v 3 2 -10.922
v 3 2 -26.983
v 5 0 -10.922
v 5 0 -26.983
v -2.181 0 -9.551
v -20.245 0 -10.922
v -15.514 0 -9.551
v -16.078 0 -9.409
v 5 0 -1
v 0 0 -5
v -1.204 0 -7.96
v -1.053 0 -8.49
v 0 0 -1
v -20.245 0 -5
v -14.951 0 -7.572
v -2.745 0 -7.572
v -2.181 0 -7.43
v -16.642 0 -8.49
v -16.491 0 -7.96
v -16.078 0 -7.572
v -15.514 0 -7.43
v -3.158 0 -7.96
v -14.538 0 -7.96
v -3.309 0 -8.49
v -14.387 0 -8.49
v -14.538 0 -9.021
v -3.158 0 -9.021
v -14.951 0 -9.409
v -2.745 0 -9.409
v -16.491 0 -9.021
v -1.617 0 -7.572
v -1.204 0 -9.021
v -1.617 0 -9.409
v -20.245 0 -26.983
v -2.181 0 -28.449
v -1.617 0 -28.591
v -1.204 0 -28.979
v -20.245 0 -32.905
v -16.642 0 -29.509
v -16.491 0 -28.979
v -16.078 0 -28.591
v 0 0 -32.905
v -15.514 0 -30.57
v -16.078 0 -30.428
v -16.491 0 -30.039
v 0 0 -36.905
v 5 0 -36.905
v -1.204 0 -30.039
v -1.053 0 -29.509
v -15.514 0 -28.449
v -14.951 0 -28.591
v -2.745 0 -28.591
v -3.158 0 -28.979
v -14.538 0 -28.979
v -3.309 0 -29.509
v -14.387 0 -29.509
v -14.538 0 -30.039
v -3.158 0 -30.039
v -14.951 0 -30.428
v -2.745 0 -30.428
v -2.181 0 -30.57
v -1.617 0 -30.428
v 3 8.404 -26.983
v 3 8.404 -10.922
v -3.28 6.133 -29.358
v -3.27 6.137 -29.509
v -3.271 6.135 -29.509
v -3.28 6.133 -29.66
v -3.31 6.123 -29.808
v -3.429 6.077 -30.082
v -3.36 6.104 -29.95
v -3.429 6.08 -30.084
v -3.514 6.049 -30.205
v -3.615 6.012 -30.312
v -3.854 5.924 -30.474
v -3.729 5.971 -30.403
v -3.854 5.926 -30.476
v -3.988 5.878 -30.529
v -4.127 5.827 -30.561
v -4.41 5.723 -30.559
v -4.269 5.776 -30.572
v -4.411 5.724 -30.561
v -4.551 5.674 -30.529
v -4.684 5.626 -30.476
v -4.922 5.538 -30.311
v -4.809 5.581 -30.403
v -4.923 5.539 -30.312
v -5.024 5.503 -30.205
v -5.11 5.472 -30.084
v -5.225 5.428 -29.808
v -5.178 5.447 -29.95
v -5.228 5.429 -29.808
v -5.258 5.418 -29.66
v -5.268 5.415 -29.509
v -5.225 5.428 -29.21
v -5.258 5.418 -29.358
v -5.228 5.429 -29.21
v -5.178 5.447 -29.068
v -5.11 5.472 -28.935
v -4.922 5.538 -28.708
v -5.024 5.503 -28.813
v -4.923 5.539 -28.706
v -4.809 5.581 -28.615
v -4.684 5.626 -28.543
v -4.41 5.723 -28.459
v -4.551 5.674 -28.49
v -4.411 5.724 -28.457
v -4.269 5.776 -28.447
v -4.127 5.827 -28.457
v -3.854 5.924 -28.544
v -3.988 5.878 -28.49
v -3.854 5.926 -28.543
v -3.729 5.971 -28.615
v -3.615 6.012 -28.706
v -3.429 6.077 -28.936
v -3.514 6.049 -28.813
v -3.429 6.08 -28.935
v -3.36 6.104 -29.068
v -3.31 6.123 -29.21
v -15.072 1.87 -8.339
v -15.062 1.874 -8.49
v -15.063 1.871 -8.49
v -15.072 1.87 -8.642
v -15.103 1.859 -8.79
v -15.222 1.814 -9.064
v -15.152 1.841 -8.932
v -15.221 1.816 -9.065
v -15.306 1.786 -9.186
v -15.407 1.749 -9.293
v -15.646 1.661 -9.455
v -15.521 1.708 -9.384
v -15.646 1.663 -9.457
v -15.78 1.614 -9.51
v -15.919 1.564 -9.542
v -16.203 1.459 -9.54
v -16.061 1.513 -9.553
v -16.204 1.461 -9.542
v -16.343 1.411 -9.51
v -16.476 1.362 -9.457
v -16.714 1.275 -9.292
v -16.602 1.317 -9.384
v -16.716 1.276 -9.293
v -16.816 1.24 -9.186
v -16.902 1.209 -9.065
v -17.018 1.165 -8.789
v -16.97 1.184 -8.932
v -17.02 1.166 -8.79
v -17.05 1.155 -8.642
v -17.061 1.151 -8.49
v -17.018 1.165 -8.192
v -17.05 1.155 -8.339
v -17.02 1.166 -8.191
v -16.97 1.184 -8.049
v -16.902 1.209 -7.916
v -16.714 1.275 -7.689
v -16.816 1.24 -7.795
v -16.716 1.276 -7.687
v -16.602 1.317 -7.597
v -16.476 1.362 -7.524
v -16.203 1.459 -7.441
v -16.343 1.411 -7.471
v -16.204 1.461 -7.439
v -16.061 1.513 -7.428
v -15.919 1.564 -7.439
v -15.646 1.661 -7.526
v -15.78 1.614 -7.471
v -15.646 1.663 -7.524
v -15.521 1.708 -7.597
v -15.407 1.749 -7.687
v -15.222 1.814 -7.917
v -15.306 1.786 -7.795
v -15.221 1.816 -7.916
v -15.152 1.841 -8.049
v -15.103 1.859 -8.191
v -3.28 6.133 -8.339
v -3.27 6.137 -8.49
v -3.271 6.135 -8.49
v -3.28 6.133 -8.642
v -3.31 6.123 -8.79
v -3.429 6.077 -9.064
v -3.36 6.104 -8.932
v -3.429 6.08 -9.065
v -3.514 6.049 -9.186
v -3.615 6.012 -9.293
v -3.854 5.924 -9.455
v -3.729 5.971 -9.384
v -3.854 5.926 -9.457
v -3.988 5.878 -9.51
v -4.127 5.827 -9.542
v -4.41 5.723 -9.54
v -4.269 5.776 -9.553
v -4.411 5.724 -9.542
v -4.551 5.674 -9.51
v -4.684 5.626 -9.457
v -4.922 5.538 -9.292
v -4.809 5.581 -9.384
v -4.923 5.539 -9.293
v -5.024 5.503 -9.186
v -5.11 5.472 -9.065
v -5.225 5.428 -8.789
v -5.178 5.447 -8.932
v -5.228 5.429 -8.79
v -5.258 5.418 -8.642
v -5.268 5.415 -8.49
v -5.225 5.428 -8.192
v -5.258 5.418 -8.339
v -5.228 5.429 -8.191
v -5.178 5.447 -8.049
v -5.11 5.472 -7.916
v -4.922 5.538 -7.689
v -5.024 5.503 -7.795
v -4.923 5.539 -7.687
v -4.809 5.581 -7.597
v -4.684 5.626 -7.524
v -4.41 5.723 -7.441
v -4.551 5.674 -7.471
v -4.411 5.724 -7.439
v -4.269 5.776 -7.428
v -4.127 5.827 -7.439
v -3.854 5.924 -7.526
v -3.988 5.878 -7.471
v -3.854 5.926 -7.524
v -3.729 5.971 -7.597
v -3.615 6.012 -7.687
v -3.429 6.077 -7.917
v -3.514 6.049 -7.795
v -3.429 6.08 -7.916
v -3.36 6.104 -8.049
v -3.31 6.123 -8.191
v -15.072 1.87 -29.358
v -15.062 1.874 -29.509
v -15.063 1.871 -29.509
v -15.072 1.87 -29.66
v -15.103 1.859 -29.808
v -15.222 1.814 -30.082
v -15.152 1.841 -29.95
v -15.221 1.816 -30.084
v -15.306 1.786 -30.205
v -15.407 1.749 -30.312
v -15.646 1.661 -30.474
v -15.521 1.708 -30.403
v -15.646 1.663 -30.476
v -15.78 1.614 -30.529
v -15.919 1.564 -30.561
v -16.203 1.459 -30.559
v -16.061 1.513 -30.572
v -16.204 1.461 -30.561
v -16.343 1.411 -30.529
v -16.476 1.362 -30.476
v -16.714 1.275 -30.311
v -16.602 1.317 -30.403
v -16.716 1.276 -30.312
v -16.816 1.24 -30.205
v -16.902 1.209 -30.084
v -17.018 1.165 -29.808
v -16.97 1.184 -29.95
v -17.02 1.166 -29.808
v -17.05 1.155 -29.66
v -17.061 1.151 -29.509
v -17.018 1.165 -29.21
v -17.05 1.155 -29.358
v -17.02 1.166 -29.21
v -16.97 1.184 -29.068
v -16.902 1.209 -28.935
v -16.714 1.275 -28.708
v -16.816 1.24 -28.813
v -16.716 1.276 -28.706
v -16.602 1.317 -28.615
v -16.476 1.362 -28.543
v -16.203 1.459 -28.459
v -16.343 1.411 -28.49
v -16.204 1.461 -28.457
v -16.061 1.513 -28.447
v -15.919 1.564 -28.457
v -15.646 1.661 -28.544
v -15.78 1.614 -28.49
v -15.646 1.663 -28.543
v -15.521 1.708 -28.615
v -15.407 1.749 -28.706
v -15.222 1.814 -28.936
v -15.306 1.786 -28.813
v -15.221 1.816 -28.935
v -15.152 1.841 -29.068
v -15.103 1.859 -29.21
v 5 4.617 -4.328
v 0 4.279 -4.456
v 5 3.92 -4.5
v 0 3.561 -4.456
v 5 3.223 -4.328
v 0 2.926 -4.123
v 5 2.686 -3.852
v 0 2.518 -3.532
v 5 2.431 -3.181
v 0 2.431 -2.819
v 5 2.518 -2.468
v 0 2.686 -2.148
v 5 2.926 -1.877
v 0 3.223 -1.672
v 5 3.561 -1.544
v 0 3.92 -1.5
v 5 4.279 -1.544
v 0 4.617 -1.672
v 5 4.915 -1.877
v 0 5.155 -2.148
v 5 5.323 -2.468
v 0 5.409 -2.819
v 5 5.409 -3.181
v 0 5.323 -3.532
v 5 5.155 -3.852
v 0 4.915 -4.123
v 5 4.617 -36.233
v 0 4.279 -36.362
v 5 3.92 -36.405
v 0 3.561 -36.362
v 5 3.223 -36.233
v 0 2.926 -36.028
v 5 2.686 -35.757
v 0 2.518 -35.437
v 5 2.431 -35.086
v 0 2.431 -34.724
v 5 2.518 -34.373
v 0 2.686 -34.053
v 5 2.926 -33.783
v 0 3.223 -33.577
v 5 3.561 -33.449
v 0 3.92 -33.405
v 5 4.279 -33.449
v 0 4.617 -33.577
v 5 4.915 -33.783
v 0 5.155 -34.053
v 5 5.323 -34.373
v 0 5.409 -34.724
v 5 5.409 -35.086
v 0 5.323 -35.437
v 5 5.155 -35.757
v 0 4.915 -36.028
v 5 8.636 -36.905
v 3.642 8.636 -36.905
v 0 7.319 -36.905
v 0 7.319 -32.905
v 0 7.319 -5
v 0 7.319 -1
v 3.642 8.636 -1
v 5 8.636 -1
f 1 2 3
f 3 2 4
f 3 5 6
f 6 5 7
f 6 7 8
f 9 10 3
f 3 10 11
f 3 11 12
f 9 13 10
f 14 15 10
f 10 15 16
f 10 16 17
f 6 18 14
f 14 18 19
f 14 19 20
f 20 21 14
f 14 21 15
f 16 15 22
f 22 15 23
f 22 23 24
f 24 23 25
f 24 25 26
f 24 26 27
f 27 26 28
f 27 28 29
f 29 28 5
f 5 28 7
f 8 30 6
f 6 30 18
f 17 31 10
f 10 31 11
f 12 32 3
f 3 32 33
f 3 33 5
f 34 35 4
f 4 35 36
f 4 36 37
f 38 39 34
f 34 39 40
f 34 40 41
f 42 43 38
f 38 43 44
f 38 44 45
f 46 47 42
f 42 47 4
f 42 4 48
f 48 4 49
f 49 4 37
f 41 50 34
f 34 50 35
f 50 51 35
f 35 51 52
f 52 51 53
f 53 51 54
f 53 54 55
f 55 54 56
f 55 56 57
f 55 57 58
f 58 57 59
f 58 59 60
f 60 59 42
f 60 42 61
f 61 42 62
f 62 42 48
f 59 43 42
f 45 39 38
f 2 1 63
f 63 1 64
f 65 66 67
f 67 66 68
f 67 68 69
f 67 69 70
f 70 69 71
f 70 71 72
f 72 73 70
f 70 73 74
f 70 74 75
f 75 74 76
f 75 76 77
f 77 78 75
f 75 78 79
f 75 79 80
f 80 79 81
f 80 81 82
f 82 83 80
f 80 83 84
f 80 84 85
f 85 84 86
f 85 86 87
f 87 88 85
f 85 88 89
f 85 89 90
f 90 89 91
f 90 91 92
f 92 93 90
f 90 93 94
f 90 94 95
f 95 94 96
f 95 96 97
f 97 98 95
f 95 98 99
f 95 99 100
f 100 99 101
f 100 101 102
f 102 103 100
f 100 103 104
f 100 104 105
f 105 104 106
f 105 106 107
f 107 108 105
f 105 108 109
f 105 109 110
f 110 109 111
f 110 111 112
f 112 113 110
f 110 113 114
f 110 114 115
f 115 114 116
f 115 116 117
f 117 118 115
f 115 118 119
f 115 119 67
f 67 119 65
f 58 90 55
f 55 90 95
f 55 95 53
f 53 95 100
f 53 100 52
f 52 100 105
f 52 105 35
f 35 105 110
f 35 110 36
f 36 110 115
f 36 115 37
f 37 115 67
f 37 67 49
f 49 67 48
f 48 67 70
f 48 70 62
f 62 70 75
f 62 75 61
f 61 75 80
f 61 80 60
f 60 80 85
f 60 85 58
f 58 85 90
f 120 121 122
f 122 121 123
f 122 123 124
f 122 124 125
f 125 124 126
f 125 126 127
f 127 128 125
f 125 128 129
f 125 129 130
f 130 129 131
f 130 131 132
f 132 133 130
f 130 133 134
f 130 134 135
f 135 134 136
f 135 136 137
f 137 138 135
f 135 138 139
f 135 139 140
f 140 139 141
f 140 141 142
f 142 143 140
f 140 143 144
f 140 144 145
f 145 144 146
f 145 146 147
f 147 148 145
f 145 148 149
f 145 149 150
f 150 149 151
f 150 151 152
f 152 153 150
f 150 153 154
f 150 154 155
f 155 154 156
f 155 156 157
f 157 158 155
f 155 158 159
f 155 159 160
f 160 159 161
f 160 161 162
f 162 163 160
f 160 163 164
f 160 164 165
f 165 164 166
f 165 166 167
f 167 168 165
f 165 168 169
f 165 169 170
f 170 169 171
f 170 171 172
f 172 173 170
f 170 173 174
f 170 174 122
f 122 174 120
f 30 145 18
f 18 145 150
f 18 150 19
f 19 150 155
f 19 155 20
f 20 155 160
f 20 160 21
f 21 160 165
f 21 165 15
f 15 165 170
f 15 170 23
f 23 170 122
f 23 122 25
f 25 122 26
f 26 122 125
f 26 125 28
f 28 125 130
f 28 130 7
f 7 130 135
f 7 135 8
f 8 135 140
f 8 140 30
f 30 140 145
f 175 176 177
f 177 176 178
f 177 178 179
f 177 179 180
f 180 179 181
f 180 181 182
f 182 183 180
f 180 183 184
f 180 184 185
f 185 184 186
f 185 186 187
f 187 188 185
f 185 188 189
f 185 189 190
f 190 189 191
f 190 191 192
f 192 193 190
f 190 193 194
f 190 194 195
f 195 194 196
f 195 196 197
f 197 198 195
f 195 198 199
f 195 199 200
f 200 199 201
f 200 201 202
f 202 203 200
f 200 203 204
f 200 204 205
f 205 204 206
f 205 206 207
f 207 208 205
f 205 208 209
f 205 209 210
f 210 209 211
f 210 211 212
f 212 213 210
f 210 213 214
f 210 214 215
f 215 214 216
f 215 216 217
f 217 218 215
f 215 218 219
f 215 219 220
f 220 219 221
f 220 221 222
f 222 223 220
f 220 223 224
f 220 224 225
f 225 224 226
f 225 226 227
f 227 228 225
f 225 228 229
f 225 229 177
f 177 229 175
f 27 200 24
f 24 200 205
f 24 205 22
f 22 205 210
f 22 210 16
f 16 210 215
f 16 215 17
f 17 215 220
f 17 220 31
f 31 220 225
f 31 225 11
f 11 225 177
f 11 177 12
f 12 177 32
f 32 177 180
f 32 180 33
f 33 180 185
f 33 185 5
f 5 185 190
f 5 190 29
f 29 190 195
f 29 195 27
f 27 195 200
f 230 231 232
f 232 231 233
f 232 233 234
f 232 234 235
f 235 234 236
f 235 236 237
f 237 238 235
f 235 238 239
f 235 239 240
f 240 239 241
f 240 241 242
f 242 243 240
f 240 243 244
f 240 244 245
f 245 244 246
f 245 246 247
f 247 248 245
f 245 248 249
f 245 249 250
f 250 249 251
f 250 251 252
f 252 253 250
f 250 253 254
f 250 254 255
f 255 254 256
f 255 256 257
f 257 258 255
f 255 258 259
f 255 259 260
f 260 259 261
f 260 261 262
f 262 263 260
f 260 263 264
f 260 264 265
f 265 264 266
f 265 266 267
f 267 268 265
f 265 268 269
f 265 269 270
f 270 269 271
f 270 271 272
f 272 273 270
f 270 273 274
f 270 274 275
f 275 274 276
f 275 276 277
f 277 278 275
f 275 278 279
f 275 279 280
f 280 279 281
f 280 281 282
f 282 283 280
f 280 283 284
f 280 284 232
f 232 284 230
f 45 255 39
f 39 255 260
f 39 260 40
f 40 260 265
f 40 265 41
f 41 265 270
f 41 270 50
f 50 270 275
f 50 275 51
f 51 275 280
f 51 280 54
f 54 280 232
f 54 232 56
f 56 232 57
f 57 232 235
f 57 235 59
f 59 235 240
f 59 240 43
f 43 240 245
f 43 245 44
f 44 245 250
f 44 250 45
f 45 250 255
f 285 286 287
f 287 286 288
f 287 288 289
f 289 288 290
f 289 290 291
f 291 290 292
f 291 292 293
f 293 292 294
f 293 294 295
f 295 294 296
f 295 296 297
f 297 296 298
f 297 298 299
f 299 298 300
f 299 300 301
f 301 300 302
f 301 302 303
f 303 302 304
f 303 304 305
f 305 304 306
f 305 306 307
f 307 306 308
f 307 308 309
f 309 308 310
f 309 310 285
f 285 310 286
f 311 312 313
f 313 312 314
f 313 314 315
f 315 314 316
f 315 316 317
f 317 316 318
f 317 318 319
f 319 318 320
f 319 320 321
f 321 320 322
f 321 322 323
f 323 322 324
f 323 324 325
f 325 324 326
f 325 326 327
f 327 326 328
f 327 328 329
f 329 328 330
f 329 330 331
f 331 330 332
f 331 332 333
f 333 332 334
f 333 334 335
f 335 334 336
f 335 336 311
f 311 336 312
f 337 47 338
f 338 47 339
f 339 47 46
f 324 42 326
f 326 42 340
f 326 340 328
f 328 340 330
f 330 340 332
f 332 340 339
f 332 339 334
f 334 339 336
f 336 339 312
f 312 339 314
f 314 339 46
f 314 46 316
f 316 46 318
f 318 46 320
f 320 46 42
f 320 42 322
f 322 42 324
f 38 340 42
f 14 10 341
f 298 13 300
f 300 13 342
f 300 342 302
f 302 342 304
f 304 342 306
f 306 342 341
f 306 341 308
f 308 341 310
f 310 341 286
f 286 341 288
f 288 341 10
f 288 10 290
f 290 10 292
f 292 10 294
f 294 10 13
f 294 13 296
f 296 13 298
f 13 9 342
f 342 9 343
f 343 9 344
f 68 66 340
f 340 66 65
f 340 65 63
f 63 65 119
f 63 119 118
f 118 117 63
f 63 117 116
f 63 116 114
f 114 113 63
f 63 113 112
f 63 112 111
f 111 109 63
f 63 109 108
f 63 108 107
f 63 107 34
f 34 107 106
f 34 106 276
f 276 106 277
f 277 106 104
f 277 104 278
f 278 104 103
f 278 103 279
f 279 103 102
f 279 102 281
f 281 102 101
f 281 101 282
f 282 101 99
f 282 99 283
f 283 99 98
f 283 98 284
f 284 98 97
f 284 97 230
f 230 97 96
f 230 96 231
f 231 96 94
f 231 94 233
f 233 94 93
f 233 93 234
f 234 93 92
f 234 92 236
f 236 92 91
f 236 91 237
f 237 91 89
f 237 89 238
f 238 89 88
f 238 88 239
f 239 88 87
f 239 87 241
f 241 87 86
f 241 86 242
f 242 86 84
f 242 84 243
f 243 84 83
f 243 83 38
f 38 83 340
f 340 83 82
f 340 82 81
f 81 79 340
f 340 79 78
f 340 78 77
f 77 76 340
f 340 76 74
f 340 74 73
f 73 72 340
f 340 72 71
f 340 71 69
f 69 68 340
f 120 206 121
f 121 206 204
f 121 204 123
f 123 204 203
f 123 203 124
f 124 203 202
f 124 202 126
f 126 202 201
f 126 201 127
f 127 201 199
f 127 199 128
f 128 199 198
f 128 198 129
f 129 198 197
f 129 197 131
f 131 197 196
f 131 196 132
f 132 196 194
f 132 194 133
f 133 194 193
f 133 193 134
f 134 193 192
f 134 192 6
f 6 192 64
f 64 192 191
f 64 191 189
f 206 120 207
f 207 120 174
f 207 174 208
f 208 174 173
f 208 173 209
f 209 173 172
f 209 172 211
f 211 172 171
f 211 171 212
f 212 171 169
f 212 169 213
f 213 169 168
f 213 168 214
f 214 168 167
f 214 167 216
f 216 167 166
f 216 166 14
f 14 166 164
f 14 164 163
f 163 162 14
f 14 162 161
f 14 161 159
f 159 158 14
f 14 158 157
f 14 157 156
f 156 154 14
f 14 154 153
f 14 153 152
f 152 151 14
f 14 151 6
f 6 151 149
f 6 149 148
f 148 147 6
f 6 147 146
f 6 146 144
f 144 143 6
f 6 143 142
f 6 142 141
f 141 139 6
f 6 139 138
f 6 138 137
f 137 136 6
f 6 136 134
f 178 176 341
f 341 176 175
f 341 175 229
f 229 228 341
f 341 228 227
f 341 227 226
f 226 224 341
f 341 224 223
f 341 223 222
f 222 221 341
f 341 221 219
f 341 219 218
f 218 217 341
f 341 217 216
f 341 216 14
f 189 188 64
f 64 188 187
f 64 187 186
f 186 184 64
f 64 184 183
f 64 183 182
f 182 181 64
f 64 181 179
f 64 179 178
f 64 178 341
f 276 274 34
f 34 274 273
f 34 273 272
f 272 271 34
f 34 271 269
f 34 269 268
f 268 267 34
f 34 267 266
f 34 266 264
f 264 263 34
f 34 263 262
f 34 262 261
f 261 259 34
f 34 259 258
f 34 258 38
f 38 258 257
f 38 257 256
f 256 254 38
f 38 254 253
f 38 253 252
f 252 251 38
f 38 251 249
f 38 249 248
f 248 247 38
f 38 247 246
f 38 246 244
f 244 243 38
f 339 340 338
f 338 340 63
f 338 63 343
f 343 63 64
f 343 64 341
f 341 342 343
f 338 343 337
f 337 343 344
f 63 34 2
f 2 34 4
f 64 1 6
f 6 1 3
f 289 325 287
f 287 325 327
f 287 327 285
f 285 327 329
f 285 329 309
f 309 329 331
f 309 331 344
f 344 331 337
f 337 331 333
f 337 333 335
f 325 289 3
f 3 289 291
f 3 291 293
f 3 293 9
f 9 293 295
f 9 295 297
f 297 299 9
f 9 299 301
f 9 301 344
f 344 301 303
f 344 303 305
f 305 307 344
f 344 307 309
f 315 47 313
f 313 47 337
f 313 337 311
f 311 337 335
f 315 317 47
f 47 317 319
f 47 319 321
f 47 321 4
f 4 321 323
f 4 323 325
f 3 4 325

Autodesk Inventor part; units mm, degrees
ref_plane "YZ Plane" through (0, 0, 0) normal (1, 0, 0) x (0, 1, 0)
ref_plane "XZ Plane" through (0, 0, 0) normal (0, 1, 0) x (-1, 0, 0)
sketch "Sketch2" plane through (0, 0, 0) normal (0, 1, 0) x (-1, 0, 0)
  line L0 (0, 0) -> (23.273, 0)
  line L1 (23.273, 0) -> (23.273, -37.9053)
  line L2 (23.273, -37.9053) -> (0, -37.9053)
  line L3 (0, -37.9053) -> (0, 0)
  line L4 (26.75, 0) -> (-5, 0)
  line L5 (-5, 0) -> (-5, -37.9053)
  line L6 (-5, -37.9053) -> (26.75, -37.9053)
  line L7 (26.75, -37.9053) -> (26.75, 0)
  point P0 (0, -37.9053)
  dimension "d21" = 37.9053
  dimension "d22" = 23.273
  dimension "d36" = 5
  dimension "d37" = 31.75
extrude "Extrusion1" add sketch "Sketch2" along normal blind 8.636
sketch "Sketch6" plane through (-26.75, 0, 0) normal (0, 0, 1) x (1, 0, 0)
  line L0 (31.75, 0) -> (31.75, 8.636) projected
  line L1 (31.75, 0) -> (31.75, 8.636)
  line L2 (31.75, 0) -> (0, 0) projected
  line L3 (30.3918, 0) -> (30.3918, 8.636)
  line L4 (31.75, 8.636) -> (0, 8.636) projected
  line L5 (30.3918, 8.636) -> (55.3918, 8.636) construction
  line L6 (0, 0) -> (0, 8.636) projected
  line L7 (0, 0) -> (0, 0.5)
  line L8 (30.3918, 8.636) -> (6.505, 0)
  point P0 (26.75, 0)
  dimension "d38" = 1.3582
  dimension "d41" = 0.5
  dimension "d96" = 25.4
  dimension "d97" = 70.123
extrude "Extrusion2" cut sketch "Sketch6" against normal up to surface (37.9053 mm away) contours L8 L2 L6 L4
sketch "Sketch8" plane through (0, 0, 0) normal (0, -1, 0) x (1, 0, 0)
  line L0 (-26.75, -37.9053) -> (-26.75, 0) projected
  line L1 (-26.75, -10.922) -> (3, -10.922)
  line L2 (3, -10.922) -> (3, -26.9833)
  line L3 (3, -26.9833) -> (-26.75, -26.9833)
  line L4 (-26.75, -26.9833) -> (-26.75, -10.922)
  line L5 (-26.75, 0) -> (5, 0) projected
  line L6 (5, -37.9053) -> (-26.75, -37.9053) projected
  line L7 (5, 0) -> (5, -37.9053) projected
  point P0 (0, 0)
  point P1 (-26.75, -26.9833)
  dimension "d44" = 10.922
  dimension "d45" = 10.922
  dimension "d46" = 2
extrude "Extrusion3" cut sketch "Sketch8" against normal blind 25.4 contours L0 L1 L2 L3
ref_plane "Work Plane1" through (4.3209, 8.636, 0) normal (0, 1, 0) x (1, 0, 0)
sketch "Sketch12" plane through (0, 0, 0) normal (0, -1, 0) x (1, 0, 0)
  line L0 (3.6418, 0) -> (-26.75, 0) projected
  line L1 (-26.75, 0) -> (0, 0)
  line L2 (0, 0) -> (0, -5)
  line L3 (0, -5) -> (-26.75, -5)
  line L4 (-26.75, -5) -> (-26.75, 0)
  line L5 (-26.75, -37.9053) -> (0, -37.9053)
  line L6 (0, -37.9053) -> (0, -32.9053)
  line L7 (0, -32.9053) -> (-26.75, -32.9053)
  line L8 (-26.75, -32.9053) -> (-26.75, -37.9053)
  line L9 (5, 0) -> (0, 0)
  line L10 (0, 0) -> (0, -1)
  line L11 (0, -1) -> (5, -1)
  line L12 (5, -1) -> (5, 0)
  line L13 (5, 0) -> (5, -37.9053) projected
  line L14 (5, -37.9053) -> (0, -37.9053)
  line L15 (0, -37.9053) -> (0, -36.9053)
  line L16 (0, -36.9053) -> (5, -36.9053)
  line L17 (5, -36.9053) -> (5, -37.9053)
  line L18 (5, -37.9053) -> (-26.75, -37.9053) projected
  point P0 (0, -37.9053)
  dimension "d69" = 5
  dimension "d70" = 5
  dimension "d73" = 1
  dimension "d74" = 1
  dimension "d75" = 0
extrude "Extrusion6" cut sketch "Sketch12" along normal through all both and the other way through all
sketch "Sketch13" plane through (0, 0, -36.9053) normal (-1, 0, 0) x (0, 0, 1)
  circle A0 centre (2, 3.9204) radius 1.5
  circle A1 centre (33.9053, 3.9204) radius 1.5
  line L0 (35.9053, 0) -> (31.9053, 0) projected
  line L1 (31.9053, 7.8408) -> (35.9053, 7.8408) projected
  line L2 (35.9053, 7.3193) -> (35.9053, 0) projected
  line L3 (31.9053, 2) -> (31.9053, 7.8408) projected
  line L4 (0, 0) -> (0, 7.3193) projected
  line L5 (0, 7.8408) -> (4, 7.8408) projected
  line L6 (4, 0) -> (0, 0) projected
  point P0 (36.9053, 0)
  point P1 (35.9053, 8.636)
  point P2 (0, 8.636)
  dimension "d80" = 3
  dimension "d81" = 3
  dimension "d82" = 7.8408
  dimension "d83" = 3.9204
  dimension "d84" = 4
  dimension "d85" = 2
  dimension "d86" = 2
  dimension "d87" = 3.9204
  dimension "d88" = 31.9053
  dimension "d148" = 3.9204
extrude "Extrusion7" cut sketch "Sketch13" against normal blind 25.4
sketch "Sketch15" plane through (3, 8.404, -10.922) normal (-0.34, 0.9404, 0) x (0.9404, 0.34, 0)
  circle A0 centre (-20.2688, -2.4315) radius 1.1146
  circle A1 centre (-7.7296, 18.5871) radius 1.229
  line L0 (-20.2688, -2.4315) -> (-20.2688, 18.5871)
  line L1 (-20.2688, 18.5871) -> (-7.7296, 18.5871)
  line L2 (-7.7296, 18.5871) -> (-7.7296, -2.4315)
  line L3 (-7.7296, -2.4315) -> (-20.2688, -2.4315)
  line L4 (-12.8017, 2.62) -> (-12.8017, 13.4413)
  line L5 (-12.8017, 13.4413) -> (-2.355, 13.4413)
  line L6 (-2.355, 13.4413) -> (-2.355, 2.62)
  line L7 (-2.355, 2.62) -> (-12.8017, 2.62)
  line L8 (-22.0403, -4.4694) -> (-22.0403, 20.5306)
  line L9 (-22.0403, 20.5306) -> (1.9597, 20.5306)
  line L10 (1.9597, 20.5306) -> (1.9597, -4.4694)
  line L11 (1.9597, -4.4694) -> (-22.0403, -4.4694)
  line L12 (-3.19, 21.9833) -> (-24.7175, 21.9833) projected
  line L13 (-24.7175, -5.922) -> (-3.19, -5.922) projected
  circle A2 centre (-20.2688, 18.5871) radius 1.1245
  line L14 (0, 16.0613) -> (0, 0) projected
  line L15 (1.9597, -9.922) -> (1.9597, 25.9833) projected
  circle A3 centre (-7.7296, -2.4315) radius 1.1245
  point P0 (-5.6786, -10.922)
  dimension "d107" = 21.0186
  dimension "d108" = 12.5392
  dimension "d110" = 25
  dimension "d111" = 24
  dimension "d112" = 4.3148
  dimension "d113" = 9.2386
  dimension "d114" = 7.0893
  dimension "d115" = 7.0893
  dimension "d117" = 1.9436
  dimension "d118" = 2.0378
  dimension "d119" = 1.7714
  dimension "d120" = 9.6893
  dimension "d122" = 1.4526
  dimension "d123" = 1.4526
  dimension "d124" = 2.249
  dimension "d133" = 0
  dimension "d134" = 2.249
hole "Hole3" at (-16.0613, 1.5126, -8.4905) at (-4.2691, 5.7759, -8.4905) at (-4.2691, 5.7759, -29.5091) at (-16.0613, 1.5126, -29.5091) direction (0.34, -0.9404, 0) diameter 2.1211 depth 7.1 tip angle 118 countersink diameter 2.125 countersink angle 90 thread size "M2.5x0.35" class "6H" standard "ANSI Metric M Profile"
chamfer "Chamfer3" distance 2 distance2 2 1 edges at (3, 0, -18.9526) measured on face at (4.3333, 0, -21.6295)
equation "\"d83\" = 0.5 * d82"
equation "\"d85\" = 0.5 * d84"
equation "\"d86\" = d85"
equation "\"d87\" = d83"
equation "\"d115\" = d114"
equation "\"d122\" = d123"
properties part number "Camera Angle"
